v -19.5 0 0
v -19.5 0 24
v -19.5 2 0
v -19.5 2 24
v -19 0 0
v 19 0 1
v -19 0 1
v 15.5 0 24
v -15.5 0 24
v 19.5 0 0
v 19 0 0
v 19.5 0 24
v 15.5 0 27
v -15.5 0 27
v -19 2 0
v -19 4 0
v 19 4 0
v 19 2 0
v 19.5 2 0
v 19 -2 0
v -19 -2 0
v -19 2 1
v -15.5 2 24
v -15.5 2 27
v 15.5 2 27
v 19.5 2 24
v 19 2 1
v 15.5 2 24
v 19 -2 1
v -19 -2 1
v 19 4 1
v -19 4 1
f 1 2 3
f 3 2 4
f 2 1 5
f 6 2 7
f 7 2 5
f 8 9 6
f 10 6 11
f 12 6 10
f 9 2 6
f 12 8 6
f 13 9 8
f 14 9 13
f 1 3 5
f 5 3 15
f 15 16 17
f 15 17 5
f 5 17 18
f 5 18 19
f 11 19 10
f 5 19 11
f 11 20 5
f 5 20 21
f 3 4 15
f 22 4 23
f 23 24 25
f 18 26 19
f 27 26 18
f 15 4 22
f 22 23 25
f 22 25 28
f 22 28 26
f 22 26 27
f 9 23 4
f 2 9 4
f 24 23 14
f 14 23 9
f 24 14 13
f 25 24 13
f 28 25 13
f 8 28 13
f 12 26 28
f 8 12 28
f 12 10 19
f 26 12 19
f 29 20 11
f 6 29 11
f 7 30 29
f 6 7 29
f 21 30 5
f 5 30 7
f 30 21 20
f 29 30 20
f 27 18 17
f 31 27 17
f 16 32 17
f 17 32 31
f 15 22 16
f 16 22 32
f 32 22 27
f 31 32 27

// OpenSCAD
base_length = 39;
base_width = 2;
base_height = 27;
base = [base_length, base_width, base_height];
base_bottom = [base_length - 1, base_width + 4, 1];

corner_length = 6;
corner_width = 3;
corner_height = 6;
corner = [corner_length, corner_width, corner_height];

buff_length = 32;
buff_width = 2;
buff_height = 1;
buff = [buff_length, buff_width, buff_height];

translate([-1 * (base_length / 2), 0, 0]) {
	difference() {
		cube(base);

		translate([-2, -1, 24]) {
			rotate([0, 0, 0]) {
				cube(corner);
			}
		}
		translate([35, -1, 24]) {
			rotate([0, 0, 0]) {
				cube(corner);
			}
		}
	}
	
	//translate([3, -.5, base_height - buff_height]) cube(buff);
	translate([0.5, -2, 0]) cube(base_bottom);
}
